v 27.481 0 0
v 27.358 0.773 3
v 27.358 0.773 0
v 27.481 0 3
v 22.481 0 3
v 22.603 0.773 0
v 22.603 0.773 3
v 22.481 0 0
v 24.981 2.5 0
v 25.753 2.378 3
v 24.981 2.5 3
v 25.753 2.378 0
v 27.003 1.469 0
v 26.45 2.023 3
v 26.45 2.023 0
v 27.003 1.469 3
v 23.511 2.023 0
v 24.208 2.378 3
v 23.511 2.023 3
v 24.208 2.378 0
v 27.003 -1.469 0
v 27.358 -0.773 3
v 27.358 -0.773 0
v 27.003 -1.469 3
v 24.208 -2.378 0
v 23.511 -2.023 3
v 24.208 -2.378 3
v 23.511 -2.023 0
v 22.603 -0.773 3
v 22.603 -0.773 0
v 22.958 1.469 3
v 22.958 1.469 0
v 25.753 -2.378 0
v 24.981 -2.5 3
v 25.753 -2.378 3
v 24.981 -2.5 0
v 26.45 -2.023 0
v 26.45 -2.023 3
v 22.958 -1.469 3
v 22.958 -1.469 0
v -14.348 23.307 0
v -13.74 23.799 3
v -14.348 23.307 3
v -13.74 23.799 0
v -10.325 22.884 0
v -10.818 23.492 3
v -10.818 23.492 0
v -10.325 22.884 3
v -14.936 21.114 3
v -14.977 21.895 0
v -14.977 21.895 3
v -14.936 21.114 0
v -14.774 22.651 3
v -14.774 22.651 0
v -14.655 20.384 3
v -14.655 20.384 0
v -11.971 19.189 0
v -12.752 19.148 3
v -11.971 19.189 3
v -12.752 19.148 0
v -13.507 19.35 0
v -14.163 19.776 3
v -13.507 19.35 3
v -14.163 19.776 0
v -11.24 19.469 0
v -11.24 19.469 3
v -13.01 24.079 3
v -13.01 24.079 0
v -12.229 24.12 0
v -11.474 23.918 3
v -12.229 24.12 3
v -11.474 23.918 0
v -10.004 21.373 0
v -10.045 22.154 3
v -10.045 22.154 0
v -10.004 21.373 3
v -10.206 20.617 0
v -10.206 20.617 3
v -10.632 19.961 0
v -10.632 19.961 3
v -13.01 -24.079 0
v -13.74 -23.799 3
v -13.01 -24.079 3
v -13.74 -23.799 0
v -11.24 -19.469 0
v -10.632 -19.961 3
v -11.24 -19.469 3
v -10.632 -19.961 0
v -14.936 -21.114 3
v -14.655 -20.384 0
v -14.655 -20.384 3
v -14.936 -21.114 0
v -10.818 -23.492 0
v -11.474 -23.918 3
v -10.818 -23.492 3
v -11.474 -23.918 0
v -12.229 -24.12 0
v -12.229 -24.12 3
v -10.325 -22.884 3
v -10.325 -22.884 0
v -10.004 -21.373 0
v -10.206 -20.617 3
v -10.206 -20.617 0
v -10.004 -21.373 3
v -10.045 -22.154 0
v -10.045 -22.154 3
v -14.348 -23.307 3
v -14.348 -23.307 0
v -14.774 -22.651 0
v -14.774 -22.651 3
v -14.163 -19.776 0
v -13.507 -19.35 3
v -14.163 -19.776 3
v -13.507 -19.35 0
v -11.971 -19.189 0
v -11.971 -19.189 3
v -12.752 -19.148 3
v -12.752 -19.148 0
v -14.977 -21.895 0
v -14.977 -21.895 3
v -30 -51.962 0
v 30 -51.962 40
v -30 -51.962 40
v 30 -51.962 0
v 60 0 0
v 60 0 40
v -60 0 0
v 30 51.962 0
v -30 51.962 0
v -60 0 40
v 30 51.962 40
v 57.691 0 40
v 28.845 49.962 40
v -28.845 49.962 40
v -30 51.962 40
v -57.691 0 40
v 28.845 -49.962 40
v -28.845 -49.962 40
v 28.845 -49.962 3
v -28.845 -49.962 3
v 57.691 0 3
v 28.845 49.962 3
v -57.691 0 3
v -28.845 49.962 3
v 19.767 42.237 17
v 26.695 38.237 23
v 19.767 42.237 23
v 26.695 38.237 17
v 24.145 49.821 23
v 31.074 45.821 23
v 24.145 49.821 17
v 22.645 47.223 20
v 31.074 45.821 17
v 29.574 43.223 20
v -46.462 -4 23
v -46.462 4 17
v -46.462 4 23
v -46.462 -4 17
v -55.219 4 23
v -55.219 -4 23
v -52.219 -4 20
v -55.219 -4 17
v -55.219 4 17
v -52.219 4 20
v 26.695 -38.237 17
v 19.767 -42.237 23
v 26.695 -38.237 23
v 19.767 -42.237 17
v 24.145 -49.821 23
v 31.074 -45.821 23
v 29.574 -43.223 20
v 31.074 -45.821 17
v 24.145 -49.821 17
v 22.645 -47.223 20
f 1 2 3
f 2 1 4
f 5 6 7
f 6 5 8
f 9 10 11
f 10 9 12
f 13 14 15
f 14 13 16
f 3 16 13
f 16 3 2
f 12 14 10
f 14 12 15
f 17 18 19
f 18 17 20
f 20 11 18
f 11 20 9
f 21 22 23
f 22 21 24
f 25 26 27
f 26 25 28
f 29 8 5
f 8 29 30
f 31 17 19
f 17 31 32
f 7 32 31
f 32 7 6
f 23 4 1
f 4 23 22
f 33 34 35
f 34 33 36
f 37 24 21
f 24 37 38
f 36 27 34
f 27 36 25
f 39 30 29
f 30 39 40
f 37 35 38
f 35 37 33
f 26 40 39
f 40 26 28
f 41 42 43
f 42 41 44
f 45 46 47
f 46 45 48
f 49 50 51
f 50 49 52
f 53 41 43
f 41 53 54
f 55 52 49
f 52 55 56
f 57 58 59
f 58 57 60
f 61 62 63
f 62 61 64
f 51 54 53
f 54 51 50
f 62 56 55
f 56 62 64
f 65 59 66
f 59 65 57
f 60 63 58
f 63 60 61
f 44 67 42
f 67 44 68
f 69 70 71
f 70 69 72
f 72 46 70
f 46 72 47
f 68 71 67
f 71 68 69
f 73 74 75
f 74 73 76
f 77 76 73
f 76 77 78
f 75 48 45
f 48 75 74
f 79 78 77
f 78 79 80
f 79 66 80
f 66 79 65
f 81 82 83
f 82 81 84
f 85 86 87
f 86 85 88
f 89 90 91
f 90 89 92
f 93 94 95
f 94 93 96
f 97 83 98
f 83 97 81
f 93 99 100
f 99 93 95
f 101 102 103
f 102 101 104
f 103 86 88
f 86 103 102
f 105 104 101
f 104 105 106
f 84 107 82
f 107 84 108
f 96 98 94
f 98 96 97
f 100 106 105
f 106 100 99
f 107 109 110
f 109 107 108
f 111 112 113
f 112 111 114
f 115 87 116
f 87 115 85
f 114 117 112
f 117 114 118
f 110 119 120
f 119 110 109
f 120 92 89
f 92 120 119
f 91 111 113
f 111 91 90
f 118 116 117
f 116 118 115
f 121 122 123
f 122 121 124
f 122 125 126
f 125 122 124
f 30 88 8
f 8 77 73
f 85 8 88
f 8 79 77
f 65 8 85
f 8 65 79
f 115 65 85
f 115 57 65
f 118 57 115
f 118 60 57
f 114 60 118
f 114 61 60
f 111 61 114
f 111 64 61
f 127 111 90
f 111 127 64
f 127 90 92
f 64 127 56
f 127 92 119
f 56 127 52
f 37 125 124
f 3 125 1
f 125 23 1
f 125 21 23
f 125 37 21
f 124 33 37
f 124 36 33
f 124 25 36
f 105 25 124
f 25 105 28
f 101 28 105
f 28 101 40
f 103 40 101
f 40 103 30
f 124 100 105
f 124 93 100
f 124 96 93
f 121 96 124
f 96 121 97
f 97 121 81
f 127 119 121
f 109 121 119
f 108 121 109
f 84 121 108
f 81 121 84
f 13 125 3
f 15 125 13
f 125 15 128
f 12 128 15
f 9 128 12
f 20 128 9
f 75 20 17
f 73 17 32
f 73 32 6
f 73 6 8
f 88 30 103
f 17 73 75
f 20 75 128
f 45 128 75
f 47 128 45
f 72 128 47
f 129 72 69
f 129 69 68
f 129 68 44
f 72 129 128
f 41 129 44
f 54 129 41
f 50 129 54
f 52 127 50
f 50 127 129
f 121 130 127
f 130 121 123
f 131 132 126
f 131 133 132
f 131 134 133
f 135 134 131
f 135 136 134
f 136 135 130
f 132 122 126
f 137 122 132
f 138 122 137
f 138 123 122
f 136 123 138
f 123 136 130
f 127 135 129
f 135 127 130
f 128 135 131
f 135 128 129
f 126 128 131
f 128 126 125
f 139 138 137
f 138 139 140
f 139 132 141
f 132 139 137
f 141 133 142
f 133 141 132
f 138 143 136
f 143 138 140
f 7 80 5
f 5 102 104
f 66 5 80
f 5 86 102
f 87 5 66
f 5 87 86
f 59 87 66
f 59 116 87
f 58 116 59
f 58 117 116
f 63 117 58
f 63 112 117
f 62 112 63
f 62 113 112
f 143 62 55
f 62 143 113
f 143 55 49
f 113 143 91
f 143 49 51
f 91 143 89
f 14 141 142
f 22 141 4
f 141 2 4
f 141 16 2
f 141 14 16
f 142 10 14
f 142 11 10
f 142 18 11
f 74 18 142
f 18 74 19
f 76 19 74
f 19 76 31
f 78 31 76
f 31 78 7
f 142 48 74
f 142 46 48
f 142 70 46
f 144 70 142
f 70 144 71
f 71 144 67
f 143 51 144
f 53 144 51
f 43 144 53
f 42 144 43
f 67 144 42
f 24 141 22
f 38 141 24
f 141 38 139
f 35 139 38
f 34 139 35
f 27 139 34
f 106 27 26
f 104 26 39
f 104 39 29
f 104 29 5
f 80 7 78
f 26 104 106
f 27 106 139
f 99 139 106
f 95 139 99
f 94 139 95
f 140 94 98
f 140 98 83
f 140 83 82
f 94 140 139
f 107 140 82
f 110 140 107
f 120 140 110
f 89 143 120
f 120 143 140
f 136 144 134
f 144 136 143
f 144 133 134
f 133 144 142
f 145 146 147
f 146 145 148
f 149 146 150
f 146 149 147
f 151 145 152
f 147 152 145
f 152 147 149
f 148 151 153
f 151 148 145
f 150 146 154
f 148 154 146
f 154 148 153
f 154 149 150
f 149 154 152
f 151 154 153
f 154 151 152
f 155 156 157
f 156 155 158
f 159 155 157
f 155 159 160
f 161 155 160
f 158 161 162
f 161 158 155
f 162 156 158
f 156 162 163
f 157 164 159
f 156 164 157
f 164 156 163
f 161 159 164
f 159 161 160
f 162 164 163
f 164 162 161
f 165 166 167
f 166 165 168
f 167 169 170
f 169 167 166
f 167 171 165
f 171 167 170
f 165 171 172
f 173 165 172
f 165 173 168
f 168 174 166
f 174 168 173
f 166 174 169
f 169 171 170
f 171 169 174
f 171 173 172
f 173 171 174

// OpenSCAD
// Modular Planter - Shallow (Shallow tray for cacti)
// Generated by customizer.py

// Parameters
hex_size = 60;
height = 40;
wall_thickness = 2;
bottom_thickness = 3;
drainage_hole_d = 5;
connector_depth = 5;
connector_tolerance = 0.3;

// Derived values
apothem = hex_size * sqrt(3) / 2;
inner_apothem = apothem - wall_thickness;

// Main planter module
module planter_module() {
    difference() {
        linear_extrude(height = height)
            hexagon(apothem);
        
        translate([0, 0, bottom_thickness])
            linear_extrude(height = height - bottom_thickness + 1)
                hexagon(inner_apothem);
        
        for (i = [0:2]) {
            rotate([0, 0, i * 120])
                translate([inner_apothem * 0.5, 0, -1])
                    cylinder(d = drainage_hole_d, h = bottom_thickness + 2, $fn=20);
        }
    }
    
    for (i = [0:2]) {
        rotate([0, 0, i * 120 + 60])
            translate([apothem - 0.5, 0, height * 0.5])
                connector_male();
    }
}

module hexagon(r) {
    circle(r = r / cos(30), $fn = 6);
}

module connector_male() {
    difference() {
        cube([connector_depth * 2, 8, 6], center = true);
        translate([connector_depth, 0, 0])
            rotate([0, 45, 0])
                cube([6, 10, 6], center = true);
    }
}

planter_module();
